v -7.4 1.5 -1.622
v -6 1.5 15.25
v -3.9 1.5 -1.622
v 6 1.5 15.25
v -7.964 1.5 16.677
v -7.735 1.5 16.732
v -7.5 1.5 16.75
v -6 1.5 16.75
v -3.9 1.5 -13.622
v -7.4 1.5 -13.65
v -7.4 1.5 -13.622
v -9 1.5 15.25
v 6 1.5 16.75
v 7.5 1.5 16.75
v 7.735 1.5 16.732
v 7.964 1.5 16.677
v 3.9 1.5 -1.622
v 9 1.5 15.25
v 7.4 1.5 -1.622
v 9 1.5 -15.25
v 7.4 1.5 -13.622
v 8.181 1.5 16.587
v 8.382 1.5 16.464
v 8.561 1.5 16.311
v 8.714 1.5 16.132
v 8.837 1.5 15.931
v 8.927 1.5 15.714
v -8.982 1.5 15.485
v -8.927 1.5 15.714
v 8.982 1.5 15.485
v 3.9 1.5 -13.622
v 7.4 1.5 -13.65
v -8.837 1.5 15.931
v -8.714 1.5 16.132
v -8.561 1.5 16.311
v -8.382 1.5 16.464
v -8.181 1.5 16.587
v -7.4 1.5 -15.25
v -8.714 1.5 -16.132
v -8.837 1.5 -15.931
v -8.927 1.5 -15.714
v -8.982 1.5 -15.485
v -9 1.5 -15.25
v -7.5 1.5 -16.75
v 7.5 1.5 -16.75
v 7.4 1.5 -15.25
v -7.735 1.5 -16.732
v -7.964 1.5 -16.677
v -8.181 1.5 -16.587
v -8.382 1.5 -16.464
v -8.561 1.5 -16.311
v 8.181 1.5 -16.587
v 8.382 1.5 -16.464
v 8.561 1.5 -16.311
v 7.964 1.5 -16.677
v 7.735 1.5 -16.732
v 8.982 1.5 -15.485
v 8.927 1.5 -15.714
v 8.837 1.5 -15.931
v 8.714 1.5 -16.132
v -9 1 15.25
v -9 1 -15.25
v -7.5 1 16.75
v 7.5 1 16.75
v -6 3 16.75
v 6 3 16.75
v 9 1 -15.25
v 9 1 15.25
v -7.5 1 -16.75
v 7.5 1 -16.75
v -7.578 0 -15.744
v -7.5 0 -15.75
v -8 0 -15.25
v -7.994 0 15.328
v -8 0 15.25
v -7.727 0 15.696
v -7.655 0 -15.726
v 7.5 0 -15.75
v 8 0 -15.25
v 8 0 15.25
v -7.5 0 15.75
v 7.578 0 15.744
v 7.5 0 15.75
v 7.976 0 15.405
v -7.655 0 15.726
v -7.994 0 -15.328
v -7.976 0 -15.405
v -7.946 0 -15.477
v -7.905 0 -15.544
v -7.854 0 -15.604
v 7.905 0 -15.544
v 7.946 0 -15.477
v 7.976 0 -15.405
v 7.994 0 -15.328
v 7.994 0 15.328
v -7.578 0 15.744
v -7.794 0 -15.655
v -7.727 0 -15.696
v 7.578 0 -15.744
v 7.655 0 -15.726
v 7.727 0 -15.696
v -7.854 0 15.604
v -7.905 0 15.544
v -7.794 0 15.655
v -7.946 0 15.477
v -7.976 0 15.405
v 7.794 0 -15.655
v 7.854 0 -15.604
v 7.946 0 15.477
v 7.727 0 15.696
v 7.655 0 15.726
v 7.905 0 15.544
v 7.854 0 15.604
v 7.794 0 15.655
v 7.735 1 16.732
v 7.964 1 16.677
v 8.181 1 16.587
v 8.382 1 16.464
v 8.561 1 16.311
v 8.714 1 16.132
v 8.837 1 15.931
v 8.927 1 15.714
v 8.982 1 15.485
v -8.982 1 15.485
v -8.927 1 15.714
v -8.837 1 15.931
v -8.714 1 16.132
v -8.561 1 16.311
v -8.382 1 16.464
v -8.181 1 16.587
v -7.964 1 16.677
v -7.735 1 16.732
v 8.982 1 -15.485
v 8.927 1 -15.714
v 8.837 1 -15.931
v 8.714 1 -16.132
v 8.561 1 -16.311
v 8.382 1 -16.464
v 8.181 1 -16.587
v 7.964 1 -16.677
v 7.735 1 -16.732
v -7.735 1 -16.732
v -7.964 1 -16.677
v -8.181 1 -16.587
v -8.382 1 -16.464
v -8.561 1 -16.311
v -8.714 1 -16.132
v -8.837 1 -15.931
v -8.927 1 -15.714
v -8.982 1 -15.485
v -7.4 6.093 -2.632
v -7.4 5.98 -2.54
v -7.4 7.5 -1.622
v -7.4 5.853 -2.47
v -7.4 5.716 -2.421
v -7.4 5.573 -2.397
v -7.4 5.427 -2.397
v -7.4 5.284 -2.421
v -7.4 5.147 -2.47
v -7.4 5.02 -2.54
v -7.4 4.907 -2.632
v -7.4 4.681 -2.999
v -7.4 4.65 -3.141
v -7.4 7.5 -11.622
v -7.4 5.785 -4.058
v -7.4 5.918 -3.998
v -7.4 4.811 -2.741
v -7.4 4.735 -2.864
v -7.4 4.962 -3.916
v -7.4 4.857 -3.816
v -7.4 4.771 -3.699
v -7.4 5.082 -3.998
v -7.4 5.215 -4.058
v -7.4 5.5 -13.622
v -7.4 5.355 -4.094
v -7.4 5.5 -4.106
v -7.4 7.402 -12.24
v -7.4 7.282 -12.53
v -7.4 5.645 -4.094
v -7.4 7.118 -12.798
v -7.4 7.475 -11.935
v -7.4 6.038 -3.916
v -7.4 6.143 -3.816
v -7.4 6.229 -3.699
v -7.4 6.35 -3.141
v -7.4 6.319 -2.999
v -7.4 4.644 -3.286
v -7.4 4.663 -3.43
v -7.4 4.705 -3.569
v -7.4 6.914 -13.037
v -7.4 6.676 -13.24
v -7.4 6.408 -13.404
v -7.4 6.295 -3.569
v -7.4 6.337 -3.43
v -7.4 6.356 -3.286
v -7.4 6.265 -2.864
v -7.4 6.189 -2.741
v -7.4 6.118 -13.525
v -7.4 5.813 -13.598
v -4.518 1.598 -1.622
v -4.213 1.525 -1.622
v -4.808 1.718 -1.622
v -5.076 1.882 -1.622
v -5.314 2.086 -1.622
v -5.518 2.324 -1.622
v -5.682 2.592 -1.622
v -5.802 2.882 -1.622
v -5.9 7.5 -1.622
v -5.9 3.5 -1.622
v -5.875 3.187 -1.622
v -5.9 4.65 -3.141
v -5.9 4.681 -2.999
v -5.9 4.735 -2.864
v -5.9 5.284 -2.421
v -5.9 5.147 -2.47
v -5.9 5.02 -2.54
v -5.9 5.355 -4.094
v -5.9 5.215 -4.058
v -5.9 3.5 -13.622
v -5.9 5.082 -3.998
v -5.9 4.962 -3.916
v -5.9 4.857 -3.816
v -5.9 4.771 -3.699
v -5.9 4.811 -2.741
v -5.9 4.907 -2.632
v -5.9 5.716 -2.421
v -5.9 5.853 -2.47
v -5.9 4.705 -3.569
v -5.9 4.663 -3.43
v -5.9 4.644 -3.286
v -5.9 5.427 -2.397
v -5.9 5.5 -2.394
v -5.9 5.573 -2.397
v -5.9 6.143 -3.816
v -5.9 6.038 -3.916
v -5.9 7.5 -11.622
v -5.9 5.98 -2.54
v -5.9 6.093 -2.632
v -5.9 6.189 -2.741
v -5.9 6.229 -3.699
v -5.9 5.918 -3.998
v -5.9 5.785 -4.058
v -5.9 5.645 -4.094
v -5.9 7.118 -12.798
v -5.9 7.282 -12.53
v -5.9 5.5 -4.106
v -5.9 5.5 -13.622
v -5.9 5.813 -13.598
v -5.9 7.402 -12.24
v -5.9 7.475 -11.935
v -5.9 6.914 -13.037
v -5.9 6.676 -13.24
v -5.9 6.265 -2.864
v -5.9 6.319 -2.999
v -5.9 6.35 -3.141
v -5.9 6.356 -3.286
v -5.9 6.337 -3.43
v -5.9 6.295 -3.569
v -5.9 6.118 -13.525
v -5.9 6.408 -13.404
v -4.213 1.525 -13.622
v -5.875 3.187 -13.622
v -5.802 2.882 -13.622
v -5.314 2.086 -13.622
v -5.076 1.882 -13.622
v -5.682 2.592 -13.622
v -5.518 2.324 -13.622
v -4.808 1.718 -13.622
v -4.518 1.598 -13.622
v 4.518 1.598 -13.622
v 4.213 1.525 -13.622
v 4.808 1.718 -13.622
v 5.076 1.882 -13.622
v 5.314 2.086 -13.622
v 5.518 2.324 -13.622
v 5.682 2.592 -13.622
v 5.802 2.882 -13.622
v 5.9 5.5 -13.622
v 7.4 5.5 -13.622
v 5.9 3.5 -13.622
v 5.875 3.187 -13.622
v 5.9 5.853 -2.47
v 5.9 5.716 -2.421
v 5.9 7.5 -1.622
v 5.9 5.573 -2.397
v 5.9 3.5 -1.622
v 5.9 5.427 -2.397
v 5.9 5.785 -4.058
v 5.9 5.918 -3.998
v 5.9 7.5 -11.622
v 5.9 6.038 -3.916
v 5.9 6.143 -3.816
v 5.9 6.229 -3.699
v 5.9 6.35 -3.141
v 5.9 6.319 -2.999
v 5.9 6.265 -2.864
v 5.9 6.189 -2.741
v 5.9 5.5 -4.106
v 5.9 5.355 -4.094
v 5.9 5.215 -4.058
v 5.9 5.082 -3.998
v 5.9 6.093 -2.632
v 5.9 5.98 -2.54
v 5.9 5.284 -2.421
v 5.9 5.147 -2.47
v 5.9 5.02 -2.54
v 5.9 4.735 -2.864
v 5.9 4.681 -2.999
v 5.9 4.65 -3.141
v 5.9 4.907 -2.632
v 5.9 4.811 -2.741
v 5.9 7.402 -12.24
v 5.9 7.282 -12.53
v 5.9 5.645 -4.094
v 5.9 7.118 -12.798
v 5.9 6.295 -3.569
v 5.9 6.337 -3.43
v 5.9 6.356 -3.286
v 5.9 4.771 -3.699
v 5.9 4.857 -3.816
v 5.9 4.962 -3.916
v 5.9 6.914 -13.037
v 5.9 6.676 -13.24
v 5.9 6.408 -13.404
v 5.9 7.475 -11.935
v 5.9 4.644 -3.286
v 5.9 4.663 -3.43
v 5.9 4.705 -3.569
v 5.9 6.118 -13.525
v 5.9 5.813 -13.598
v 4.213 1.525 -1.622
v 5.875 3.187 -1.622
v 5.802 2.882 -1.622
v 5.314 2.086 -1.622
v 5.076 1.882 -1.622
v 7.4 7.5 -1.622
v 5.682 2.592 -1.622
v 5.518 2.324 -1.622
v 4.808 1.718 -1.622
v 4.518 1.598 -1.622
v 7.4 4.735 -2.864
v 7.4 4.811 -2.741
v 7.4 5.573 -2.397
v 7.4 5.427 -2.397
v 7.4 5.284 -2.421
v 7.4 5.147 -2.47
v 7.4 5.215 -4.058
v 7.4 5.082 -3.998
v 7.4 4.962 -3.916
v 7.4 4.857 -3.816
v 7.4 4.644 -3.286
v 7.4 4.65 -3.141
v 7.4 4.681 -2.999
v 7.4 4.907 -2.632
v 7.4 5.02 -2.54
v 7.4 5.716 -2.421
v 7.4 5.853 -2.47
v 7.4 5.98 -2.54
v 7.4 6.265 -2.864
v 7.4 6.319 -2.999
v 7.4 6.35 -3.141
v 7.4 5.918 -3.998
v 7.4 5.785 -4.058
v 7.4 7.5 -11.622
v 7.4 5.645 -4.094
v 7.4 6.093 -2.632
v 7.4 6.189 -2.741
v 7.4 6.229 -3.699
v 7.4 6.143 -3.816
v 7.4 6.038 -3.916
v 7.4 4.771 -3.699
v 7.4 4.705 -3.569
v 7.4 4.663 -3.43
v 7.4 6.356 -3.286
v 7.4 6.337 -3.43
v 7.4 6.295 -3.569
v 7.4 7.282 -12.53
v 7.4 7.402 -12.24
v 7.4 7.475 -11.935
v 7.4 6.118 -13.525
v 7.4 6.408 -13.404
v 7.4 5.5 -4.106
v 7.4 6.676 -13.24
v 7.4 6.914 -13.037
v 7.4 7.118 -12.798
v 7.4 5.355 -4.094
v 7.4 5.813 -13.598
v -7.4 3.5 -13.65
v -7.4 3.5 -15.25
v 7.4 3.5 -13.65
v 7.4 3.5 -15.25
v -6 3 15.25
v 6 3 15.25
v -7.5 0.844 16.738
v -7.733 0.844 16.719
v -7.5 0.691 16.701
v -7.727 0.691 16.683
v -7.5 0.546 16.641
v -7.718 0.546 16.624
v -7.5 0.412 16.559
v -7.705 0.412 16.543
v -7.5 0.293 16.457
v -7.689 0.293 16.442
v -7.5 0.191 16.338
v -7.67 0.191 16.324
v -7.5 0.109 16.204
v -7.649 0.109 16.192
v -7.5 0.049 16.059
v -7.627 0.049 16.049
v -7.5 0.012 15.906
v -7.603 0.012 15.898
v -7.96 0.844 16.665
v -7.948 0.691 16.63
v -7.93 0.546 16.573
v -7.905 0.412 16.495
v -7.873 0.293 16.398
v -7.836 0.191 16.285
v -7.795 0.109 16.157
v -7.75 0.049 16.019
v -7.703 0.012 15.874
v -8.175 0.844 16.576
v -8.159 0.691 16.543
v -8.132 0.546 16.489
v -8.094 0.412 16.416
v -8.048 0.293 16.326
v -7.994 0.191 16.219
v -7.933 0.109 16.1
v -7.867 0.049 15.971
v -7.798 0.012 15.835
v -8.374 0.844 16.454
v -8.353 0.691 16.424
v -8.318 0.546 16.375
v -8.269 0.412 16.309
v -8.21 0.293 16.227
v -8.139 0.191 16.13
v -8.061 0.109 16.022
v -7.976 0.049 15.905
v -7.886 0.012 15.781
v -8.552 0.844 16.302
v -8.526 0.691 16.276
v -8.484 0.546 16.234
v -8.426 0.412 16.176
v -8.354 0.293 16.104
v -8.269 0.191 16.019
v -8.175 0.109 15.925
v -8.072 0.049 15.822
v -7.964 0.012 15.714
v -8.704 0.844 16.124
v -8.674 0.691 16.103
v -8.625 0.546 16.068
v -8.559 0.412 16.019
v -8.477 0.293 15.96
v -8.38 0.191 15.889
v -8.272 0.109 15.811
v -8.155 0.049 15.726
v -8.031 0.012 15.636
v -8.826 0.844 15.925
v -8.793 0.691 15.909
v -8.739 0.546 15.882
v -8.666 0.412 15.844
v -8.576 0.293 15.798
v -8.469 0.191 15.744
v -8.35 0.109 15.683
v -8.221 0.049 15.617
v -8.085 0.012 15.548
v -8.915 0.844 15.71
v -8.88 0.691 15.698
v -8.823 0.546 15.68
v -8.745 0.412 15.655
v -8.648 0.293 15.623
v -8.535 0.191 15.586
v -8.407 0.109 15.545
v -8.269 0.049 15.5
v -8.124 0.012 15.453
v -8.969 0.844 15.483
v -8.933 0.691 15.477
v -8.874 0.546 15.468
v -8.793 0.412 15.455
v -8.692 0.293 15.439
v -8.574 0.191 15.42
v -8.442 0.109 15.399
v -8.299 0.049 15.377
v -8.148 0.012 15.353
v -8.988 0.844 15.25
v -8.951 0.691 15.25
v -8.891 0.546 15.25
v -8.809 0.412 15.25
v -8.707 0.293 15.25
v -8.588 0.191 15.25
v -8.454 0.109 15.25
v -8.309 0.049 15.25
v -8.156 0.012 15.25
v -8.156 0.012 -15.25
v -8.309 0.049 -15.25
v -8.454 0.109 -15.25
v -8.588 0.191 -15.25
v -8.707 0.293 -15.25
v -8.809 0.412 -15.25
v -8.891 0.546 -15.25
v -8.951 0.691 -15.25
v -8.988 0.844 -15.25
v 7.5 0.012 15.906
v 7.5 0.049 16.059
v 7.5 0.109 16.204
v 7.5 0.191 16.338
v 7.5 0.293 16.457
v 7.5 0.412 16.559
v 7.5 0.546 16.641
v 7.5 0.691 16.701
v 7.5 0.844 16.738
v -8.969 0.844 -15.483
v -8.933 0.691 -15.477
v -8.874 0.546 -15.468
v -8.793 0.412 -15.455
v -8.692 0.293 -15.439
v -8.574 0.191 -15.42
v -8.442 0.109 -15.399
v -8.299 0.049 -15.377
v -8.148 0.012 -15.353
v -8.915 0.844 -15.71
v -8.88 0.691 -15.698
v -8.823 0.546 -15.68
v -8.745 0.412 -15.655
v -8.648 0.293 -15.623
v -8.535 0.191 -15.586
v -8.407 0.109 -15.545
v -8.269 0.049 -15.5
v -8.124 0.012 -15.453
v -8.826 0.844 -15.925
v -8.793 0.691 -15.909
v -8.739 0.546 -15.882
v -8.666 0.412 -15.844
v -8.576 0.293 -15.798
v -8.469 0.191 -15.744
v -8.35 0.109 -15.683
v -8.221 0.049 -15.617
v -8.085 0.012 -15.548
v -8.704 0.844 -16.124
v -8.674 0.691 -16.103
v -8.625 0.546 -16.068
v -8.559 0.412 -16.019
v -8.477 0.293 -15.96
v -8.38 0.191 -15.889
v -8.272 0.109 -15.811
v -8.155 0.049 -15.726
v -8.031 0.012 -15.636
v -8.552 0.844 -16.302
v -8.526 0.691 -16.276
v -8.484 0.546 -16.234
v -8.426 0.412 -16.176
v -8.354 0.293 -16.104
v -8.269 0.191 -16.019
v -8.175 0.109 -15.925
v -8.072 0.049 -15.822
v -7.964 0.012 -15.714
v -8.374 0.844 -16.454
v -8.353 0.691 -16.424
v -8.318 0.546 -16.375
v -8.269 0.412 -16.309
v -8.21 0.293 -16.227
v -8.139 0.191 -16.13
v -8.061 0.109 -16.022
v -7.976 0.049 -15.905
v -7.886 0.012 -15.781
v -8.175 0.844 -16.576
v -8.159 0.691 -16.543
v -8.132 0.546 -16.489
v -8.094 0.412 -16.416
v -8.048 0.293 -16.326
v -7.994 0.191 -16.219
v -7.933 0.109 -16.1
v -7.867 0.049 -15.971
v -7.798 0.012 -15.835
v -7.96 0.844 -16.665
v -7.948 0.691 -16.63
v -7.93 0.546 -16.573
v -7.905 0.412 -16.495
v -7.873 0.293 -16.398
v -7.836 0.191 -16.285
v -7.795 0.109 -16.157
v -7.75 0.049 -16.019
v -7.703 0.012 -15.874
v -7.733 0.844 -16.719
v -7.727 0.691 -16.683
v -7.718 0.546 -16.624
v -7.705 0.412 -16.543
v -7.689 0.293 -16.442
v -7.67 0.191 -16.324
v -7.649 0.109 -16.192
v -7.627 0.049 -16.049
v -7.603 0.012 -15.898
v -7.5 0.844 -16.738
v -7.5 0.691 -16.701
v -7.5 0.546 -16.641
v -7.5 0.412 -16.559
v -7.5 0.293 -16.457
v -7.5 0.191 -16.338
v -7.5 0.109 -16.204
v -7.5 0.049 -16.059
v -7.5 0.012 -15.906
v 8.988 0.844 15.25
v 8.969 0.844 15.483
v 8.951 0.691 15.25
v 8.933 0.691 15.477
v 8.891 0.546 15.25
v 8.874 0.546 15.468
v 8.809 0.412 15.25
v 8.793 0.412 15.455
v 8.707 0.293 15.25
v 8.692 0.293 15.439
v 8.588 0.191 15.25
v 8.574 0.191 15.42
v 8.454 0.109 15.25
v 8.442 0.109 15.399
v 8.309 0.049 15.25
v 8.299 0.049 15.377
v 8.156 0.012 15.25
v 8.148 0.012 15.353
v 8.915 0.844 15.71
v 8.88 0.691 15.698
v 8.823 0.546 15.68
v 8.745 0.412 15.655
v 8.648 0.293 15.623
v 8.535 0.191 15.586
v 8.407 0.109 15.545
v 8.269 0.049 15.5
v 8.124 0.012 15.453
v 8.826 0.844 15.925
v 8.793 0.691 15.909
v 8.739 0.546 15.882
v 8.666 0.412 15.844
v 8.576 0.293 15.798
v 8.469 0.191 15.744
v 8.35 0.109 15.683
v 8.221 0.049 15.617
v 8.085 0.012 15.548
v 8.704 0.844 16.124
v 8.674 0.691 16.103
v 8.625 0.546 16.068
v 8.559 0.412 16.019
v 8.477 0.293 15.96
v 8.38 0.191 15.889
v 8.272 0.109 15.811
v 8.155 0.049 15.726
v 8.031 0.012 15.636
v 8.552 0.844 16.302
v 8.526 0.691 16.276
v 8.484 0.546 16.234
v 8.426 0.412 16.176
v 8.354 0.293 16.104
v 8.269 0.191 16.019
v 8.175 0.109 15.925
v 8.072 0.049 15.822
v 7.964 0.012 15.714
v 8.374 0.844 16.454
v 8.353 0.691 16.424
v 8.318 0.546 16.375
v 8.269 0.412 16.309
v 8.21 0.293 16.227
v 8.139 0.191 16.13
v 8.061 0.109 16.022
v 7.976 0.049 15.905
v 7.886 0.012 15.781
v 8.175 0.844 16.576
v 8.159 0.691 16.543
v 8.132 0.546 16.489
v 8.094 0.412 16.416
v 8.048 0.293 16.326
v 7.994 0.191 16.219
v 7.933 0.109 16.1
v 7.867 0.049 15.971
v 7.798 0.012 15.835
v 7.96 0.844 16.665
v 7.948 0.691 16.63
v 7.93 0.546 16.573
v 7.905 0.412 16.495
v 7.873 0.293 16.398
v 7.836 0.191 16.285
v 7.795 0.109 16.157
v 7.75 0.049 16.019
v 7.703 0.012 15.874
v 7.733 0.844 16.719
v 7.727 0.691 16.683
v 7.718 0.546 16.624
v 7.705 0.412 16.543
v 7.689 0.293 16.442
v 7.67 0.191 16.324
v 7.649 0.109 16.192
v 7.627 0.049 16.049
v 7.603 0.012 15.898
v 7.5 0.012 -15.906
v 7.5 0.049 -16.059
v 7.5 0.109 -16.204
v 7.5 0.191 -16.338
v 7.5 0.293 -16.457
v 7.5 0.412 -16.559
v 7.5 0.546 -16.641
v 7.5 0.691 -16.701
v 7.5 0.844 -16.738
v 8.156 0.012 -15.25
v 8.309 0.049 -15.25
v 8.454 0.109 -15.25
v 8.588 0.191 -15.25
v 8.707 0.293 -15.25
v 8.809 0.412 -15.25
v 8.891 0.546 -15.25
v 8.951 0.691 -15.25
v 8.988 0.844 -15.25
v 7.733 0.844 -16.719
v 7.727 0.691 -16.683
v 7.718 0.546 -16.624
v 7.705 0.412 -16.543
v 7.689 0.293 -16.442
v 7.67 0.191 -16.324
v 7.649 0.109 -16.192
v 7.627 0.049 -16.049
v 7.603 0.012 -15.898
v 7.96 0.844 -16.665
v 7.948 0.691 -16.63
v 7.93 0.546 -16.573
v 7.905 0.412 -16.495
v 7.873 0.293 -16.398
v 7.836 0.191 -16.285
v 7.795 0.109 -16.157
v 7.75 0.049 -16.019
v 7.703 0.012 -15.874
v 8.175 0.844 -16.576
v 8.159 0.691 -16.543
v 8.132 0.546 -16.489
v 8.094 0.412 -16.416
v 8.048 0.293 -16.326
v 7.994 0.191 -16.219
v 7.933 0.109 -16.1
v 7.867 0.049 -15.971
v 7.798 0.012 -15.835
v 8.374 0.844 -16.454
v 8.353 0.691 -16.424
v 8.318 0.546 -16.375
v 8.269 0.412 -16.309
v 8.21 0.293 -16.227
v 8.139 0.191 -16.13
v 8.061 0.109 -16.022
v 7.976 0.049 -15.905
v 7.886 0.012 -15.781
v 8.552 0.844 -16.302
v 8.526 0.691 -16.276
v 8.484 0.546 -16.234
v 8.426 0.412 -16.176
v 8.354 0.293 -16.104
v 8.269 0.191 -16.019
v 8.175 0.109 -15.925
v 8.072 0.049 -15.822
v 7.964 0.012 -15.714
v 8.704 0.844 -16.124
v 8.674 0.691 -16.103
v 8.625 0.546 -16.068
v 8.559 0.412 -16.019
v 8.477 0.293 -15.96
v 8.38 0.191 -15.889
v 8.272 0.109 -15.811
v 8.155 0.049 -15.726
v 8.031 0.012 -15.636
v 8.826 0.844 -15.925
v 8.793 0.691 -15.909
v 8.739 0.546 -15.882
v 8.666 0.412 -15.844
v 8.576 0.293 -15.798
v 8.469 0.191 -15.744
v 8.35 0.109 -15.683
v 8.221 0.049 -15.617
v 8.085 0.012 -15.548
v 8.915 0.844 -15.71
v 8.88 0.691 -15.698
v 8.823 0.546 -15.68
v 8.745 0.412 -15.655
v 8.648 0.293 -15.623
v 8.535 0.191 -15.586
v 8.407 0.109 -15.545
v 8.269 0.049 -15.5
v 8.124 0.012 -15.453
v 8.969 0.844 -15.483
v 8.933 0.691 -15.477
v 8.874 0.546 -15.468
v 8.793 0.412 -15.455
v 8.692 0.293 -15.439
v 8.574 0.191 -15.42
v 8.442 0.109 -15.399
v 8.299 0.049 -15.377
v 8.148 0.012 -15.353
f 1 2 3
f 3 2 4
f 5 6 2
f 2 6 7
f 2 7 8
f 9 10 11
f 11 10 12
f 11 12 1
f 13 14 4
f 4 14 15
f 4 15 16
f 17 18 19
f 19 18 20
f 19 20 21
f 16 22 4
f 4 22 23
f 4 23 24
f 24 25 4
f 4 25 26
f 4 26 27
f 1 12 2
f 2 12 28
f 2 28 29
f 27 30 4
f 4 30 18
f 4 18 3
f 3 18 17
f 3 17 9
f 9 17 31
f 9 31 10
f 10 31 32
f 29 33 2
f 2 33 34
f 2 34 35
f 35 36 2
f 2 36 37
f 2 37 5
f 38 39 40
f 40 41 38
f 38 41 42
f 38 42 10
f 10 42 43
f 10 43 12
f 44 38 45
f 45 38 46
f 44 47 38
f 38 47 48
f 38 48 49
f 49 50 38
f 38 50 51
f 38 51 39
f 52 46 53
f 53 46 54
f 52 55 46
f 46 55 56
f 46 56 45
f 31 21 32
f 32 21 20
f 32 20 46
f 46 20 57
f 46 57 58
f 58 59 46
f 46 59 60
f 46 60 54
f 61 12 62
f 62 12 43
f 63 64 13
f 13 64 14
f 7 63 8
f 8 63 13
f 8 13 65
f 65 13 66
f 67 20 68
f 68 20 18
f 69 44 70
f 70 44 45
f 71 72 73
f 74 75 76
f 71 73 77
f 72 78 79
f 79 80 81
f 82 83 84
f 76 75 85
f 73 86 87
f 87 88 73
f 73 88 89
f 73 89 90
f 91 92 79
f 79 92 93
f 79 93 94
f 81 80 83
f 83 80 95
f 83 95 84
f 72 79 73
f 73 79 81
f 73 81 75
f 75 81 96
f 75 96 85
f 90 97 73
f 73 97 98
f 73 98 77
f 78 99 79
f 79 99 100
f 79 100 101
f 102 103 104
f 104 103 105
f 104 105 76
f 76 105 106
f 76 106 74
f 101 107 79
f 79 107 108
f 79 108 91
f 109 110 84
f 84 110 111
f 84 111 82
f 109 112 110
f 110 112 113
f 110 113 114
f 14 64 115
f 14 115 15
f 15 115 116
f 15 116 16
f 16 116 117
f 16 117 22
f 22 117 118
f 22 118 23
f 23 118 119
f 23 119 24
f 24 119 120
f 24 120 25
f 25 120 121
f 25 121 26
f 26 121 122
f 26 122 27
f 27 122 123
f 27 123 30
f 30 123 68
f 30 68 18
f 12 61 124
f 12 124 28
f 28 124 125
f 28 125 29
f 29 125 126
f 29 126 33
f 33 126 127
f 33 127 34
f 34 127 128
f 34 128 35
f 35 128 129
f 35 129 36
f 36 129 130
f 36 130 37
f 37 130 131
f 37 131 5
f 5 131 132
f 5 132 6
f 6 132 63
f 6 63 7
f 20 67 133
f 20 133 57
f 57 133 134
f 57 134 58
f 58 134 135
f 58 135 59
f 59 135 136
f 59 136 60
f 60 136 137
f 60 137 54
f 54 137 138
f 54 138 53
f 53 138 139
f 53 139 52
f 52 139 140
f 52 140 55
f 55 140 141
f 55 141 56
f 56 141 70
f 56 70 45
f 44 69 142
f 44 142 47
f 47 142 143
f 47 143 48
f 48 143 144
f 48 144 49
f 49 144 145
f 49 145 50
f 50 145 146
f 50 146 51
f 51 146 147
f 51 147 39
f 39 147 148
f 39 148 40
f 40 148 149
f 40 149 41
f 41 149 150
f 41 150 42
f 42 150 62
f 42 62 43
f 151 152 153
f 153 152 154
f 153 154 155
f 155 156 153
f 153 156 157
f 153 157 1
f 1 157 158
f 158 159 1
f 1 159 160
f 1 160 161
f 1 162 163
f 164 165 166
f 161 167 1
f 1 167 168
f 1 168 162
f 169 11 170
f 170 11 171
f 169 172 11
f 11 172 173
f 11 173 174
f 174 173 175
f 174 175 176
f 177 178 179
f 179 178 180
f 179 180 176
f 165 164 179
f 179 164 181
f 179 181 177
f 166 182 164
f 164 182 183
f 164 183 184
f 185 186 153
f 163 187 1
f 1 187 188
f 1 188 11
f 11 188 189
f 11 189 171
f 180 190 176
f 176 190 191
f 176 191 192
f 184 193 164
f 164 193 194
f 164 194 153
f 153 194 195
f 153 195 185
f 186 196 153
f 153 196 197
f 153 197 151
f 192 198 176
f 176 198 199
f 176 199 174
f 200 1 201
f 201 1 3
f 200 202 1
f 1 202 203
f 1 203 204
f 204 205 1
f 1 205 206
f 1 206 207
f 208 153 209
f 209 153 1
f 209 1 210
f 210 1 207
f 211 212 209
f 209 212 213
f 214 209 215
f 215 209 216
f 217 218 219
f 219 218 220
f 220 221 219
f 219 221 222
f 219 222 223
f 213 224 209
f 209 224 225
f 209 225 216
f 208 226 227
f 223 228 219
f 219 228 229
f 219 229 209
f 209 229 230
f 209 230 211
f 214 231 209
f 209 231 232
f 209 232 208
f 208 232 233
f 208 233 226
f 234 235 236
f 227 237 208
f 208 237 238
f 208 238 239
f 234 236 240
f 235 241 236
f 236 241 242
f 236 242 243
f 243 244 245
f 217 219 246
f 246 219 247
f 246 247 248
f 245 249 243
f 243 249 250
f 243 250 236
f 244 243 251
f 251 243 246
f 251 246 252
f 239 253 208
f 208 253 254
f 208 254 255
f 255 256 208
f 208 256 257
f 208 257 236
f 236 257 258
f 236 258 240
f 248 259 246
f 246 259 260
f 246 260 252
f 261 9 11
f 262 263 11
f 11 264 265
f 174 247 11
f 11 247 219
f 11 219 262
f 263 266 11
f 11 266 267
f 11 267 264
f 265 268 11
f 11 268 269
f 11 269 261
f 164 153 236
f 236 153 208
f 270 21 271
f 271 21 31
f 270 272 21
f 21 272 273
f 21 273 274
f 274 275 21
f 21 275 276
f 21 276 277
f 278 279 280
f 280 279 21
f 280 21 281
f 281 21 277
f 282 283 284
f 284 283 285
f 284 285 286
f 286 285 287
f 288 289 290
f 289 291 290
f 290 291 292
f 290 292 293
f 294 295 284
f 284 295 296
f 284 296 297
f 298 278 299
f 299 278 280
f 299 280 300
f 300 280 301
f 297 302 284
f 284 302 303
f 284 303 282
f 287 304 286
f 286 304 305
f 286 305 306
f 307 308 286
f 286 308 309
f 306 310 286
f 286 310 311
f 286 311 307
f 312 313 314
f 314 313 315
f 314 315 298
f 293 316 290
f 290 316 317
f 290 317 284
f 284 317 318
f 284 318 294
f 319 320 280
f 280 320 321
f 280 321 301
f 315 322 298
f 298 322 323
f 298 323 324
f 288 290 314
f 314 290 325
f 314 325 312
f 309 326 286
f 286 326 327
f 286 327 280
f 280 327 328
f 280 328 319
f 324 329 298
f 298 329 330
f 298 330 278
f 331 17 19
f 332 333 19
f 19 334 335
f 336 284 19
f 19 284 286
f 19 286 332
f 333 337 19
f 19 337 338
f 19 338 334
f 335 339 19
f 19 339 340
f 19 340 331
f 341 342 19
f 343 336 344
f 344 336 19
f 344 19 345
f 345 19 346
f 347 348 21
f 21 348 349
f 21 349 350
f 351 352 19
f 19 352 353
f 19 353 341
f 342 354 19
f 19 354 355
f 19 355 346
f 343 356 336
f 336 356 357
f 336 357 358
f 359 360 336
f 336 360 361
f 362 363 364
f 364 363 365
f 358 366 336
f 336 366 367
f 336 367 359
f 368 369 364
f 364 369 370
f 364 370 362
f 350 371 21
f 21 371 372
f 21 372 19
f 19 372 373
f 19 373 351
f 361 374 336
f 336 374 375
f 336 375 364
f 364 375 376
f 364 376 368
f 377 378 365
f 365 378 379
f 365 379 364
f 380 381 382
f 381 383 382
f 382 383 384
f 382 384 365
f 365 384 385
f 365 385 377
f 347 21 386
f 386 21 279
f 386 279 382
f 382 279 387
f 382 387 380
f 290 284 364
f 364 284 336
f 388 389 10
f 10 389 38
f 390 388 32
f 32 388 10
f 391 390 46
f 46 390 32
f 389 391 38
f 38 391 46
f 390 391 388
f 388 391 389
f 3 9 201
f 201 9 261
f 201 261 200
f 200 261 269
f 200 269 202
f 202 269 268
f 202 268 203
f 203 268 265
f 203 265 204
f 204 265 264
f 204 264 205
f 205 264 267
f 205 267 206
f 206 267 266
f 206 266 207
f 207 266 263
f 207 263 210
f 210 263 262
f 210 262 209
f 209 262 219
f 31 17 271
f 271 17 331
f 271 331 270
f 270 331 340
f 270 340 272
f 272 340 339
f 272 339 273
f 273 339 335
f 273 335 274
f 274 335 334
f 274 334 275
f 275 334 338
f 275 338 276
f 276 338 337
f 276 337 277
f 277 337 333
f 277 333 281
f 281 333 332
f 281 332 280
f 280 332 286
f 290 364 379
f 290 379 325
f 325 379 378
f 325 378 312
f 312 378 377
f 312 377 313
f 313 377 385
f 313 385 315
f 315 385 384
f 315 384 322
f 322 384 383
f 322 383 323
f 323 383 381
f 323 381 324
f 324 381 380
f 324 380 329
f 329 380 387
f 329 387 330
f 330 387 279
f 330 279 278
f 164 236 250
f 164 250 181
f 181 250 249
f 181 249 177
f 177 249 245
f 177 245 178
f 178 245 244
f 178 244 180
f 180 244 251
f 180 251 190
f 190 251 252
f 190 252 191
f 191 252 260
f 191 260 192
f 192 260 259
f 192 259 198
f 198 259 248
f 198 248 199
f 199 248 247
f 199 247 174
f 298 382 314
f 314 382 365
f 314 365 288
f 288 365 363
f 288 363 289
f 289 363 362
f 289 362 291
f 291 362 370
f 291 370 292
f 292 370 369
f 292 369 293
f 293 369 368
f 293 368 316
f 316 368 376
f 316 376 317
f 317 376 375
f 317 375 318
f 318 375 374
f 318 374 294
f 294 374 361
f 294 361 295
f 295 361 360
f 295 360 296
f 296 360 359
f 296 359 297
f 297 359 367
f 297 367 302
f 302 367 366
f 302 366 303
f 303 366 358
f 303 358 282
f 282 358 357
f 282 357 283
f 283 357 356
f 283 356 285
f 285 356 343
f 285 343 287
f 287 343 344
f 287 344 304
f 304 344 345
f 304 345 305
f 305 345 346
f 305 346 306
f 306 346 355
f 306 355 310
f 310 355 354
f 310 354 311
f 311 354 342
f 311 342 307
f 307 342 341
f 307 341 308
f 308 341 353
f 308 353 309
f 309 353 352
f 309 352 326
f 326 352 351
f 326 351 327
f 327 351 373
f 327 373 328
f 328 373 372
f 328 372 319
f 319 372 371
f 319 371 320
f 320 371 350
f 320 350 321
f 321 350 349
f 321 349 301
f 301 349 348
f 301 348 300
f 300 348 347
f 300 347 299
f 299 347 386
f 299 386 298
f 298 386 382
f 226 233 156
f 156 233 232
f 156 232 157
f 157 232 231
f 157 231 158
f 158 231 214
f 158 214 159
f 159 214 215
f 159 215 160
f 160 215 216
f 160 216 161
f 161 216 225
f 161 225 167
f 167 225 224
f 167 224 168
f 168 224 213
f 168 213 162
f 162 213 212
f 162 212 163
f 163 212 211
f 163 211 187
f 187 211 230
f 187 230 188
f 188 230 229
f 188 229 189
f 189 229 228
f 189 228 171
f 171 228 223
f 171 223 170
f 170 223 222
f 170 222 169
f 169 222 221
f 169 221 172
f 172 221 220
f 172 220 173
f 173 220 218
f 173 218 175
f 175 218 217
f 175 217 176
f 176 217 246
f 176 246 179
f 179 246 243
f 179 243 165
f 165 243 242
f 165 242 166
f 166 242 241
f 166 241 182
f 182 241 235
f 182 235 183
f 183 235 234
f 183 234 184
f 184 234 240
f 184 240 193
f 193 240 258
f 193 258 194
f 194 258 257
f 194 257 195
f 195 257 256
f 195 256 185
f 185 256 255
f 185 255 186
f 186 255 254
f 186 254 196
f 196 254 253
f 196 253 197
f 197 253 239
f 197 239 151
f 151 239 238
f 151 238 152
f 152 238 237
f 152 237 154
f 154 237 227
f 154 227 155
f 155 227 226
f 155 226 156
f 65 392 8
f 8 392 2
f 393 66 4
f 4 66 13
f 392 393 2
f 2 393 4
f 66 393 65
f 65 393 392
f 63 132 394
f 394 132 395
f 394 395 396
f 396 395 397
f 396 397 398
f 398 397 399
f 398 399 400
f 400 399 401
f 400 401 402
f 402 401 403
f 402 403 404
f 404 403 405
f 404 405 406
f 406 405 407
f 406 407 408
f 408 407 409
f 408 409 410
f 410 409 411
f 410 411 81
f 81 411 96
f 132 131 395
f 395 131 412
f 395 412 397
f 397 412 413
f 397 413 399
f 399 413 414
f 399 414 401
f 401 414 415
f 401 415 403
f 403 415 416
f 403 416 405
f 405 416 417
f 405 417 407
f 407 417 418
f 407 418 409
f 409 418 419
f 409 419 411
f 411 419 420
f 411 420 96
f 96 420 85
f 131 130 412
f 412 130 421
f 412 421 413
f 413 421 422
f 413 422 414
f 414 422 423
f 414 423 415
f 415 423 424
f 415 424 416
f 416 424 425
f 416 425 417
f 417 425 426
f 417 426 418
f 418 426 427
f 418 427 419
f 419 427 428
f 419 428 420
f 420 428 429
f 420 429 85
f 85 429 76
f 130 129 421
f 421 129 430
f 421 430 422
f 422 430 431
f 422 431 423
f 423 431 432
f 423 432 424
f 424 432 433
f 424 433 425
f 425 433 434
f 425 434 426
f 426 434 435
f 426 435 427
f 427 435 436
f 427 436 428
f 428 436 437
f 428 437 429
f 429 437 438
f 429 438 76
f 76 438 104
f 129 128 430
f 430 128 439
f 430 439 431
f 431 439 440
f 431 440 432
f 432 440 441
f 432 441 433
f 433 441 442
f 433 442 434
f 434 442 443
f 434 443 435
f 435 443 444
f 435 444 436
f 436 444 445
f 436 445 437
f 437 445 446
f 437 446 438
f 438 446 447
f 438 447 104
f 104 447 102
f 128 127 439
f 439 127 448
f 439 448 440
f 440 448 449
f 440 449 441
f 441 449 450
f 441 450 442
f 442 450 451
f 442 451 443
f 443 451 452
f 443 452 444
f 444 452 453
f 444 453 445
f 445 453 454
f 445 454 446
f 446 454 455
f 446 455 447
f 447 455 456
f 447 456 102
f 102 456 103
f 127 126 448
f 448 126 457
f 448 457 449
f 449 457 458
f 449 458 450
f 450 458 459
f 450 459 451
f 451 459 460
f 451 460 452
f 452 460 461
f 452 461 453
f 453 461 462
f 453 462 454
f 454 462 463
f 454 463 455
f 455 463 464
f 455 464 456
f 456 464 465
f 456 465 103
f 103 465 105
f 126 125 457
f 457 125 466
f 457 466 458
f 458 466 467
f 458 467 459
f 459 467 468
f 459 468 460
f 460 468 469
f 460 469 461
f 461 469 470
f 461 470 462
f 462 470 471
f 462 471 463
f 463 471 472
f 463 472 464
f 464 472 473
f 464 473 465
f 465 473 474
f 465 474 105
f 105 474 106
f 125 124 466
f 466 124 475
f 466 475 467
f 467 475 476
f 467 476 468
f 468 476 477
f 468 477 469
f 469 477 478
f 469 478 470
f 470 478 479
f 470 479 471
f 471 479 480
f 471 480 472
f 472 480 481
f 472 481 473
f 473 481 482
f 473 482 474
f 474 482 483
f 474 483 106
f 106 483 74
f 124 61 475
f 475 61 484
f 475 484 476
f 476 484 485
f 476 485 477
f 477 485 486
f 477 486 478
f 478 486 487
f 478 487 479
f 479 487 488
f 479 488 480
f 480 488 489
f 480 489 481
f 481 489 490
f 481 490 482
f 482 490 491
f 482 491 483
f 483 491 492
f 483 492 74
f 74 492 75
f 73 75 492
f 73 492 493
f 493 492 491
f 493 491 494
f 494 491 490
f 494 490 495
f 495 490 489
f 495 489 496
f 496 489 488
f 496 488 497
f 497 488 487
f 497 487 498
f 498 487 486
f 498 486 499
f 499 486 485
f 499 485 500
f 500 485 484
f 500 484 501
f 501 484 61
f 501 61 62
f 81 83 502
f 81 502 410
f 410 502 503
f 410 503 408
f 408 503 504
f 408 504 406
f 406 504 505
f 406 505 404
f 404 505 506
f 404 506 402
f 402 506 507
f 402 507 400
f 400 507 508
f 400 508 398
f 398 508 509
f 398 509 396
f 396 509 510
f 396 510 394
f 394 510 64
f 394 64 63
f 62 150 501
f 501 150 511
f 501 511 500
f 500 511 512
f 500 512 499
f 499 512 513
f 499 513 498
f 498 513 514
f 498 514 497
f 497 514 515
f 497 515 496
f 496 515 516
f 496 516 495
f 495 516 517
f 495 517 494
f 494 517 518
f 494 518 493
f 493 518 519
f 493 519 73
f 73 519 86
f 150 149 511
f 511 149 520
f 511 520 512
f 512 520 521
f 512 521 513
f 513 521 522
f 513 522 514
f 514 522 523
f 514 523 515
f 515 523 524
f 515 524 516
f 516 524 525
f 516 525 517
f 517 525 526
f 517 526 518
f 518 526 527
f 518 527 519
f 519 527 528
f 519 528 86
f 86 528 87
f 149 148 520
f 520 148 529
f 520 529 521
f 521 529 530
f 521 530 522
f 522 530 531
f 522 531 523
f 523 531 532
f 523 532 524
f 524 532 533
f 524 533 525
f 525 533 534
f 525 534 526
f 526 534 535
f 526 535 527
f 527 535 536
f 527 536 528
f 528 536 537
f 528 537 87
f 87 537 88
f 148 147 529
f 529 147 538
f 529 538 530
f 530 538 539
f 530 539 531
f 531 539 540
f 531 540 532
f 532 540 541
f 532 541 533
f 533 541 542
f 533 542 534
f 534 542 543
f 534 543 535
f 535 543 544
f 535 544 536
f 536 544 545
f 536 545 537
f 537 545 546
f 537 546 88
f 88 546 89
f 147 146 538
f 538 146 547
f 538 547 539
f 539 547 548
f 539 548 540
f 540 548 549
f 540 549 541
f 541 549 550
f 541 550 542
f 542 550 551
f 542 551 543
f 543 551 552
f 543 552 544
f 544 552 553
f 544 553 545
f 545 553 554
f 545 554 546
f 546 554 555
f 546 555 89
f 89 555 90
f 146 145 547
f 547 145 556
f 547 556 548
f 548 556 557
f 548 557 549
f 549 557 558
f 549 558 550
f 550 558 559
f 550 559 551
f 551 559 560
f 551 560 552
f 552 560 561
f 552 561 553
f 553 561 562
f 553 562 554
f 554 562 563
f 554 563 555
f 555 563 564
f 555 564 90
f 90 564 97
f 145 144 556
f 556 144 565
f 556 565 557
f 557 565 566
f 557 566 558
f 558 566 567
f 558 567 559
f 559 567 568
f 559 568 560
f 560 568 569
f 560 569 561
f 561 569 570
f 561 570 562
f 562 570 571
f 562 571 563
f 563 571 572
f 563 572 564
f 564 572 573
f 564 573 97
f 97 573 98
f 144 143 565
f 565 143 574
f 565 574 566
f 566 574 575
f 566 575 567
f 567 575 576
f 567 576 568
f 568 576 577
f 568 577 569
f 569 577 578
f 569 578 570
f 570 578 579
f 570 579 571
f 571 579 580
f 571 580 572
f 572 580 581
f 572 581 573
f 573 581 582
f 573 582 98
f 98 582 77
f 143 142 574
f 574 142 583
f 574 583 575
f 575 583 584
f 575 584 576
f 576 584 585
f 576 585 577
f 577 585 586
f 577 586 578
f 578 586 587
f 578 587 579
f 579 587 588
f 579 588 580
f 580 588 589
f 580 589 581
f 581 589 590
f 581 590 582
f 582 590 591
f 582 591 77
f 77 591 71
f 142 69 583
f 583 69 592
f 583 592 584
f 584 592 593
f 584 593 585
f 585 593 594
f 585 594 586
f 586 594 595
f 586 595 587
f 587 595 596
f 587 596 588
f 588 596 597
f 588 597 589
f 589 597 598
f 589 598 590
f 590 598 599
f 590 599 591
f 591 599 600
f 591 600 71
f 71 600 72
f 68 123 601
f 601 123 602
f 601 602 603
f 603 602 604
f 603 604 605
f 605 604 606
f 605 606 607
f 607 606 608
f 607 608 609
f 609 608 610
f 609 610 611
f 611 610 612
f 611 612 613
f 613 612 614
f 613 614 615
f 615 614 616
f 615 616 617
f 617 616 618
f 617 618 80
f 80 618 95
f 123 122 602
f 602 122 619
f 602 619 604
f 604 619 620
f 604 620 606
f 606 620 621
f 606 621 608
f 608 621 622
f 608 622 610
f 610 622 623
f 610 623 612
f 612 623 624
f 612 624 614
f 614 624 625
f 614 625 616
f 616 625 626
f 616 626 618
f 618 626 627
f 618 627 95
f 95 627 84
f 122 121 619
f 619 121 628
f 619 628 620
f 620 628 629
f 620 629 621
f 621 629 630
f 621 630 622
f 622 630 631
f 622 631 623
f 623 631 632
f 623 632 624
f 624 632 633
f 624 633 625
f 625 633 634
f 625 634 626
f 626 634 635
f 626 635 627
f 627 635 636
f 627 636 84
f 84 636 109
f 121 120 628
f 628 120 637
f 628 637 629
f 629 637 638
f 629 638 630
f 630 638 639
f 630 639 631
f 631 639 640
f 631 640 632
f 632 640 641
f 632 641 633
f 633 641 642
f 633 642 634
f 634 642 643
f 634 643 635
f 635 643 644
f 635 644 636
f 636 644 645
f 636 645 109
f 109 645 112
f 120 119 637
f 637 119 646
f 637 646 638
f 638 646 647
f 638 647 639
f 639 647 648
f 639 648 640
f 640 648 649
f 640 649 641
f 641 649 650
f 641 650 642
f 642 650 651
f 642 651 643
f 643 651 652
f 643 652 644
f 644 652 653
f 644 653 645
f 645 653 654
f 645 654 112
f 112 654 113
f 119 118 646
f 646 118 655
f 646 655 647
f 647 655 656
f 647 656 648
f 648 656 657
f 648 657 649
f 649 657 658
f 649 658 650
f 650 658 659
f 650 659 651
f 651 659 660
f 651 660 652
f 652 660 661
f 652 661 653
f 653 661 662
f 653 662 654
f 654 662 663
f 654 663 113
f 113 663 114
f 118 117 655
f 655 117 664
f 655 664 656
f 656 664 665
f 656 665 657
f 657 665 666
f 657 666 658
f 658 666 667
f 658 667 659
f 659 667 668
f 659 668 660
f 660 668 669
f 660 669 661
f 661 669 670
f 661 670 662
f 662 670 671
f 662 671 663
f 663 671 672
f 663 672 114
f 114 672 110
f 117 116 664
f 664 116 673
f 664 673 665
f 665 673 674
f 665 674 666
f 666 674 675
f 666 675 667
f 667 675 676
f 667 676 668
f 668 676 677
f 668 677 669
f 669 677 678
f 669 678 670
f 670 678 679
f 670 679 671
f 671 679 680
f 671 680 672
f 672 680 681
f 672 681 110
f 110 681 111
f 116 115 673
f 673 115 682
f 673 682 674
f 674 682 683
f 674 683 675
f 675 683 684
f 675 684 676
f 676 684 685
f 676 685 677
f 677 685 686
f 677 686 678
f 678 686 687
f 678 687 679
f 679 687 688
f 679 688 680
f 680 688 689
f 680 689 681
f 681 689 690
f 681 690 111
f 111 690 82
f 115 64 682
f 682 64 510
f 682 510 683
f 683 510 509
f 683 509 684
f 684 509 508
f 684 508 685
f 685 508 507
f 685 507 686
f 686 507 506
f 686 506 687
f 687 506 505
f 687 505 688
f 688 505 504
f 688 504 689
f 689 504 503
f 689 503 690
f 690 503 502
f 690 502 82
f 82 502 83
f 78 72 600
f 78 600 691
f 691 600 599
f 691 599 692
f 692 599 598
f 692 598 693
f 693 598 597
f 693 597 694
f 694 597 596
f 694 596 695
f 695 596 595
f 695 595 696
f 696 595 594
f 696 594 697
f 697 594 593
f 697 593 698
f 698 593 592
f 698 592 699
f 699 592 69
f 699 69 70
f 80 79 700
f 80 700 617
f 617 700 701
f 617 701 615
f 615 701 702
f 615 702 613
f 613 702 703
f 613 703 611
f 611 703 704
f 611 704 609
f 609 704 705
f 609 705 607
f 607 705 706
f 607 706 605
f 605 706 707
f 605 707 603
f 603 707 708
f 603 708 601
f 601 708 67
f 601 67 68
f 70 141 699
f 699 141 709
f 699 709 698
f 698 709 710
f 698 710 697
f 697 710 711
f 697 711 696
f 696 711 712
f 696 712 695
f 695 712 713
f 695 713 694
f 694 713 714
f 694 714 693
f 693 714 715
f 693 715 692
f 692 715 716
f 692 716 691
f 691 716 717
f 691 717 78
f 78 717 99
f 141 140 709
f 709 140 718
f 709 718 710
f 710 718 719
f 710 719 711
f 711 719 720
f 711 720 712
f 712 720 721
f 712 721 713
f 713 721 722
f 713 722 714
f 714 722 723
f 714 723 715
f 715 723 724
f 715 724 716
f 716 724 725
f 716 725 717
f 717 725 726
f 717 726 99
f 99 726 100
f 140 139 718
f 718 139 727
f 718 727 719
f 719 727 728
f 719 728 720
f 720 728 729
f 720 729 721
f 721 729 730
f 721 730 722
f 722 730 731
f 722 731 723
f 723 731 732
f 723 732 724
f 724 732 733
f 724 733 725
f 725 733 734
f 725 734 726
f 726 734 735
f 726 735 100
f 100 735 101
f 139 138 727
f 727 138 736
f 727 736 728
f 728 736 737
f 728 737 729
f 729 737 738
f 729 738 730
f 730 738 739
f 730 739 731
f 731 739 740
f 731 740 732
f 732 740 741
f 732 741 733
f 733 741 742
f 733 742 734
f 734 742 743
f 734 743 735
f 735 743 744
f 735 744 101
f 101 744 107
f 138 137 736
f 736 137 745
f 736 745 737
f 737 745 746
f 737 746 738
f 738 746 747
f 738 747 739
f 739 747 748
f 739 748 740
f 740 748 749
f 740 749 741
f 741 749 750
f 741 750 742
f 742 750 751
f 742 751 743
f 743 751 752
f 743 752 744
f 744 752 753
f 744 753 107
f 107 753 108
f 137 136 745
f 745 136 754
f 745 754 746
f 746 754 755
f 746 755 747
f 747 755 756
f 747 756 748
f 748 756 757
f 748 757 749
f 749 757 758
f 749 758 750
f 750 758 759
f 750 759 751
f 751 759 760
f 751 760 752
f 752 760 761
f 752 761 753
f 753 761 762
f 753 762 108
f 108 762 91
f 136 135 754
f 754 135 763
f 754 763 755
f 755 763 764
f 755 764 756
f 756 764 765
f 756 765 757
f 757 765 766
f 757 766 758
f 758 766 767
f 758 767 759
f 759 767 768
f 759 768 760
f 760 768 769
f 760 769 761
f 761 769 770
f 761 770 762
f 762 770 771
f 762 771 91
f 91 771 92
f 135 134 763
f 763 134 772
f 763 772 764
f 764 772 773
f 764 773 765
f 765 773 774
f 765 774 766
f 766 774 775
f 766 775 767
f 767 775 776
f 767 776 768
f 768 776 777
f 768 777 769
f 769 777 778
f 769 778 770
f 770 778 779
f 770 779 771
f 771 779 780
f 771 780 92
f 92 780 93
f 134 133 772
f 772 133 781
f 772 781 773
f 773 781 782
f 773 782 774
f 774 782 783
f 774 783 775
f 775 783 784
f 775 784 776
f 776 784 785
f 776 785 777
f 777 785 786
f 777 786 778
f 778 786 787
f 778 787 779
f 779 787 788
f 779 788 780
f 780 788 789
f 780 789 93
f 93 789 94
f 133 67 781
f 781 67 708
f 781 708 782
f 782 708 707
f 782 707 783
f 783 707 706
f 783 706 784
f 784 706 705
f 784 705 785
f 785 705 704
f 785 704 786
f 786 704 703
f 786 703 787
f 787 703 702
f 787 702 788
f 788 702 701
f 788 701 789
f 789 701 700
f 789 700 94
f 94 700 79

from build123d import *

# Parameters (mm, degrees)
SKETCH_1_W          = 18
SKETCH_1_H          = 33.5
EXTRUDE_1_DEPTH     = 1.5
FILLET_1_R          = 1.5
SKETCH_2_W          = 1.5
SKETCH_2_H          = 12
EXTRUDE_2_DEPTH     = 6
SKETCH_3_W          = 14.8
SKETCH_3_H          = 1.6
EXTRUDE_3_DEPTH     = 2
FILLET_2_R          = 2
SKETCH_4_R          = 0.856485036
CUT_EXTRUDE_1_DEPTH = 18
SKETCH_5_W          = 12
SKETCH_5_H          = 1.5
EXTRUDE_4_DEPTH     = 1.5
FILLET_3_R          = 1


with BuildPart() as part:
    # 草图1 → 凸台-拉伸1 (new body)
    with BuildSketch(Plane(origin=(0, 0, 0), x_dir=(1, 0, 0), z_dir=(0, 1, 0))):
        Rectangle(SKETCH_1_W, SKETCH_1_H)
    extrude(amount=EXTRUDE_1_DEPTH)

    # 圆角1
    fillet_1_edges = [part.edges().sort_by_distance(p)[0] for p in [
        (-9, 0.75, -16.75),
        (9, 0.75, -16.75),
        (9, 0.75, 16.75),
        (-9, 0.75, 16.75),
    ]]
    fillet(fillet_1_edges, radius=FILLET_1_R)

    # 草图2 → 凸台-拉伸2 (add)
    with BuildSketch(Plane(origin=(0, 1.5, 0), x_dir=(1, 0, 0), z_dir=(0, 1, 0))):
        with Locations((-6.65, 7.622409508)):
            Rectangle(SKETCH_2_W, SKETCH_2_H)
        with Locations((6.65, 7.622409508)):
            Rectangle(SKETCH_2_W, SKETCH_2_H)
    extrude(amount=EXTRUDE_2_DEPTH)

    # 草图3 → 凸台-拉伸3 (add)
    with BuildSketch(Plane(origin=(0, 1.5, 0), x_dir=(1, 0, 0), z_dir=(0, 1, 0))):
        with Locations((0, 14.45)):
            Rectangle(SKETCH_3_W, SKETCH_3_H)
    extrude(amount=EXTRUDE_3_DEPTH)

    # 圆角2
    fillet_2_edges = [part.edges().sort_by_distance(p)[0] for p in [
        (-5.9, 1.5, -7.622409508),
        (-6.65, 7.5, -13.622409508),
        (5.9, 1.5, -7.622409508),
        (6.65, 7.5, -13.622409508),
    ]]
    fillet(fillet_2_edges, radius=FILLET_2_R)

    # 草图4 → 切除-拉伸1 (cut)
    with BuildSketch(Plane(origin=(7.4, 0, 0), x_dir=(0, 0, -1), z_dir=(1, 0, 0))):
        with Locations((3.25, 5.5)):
            Circle(SKETCH_4_R)
    extrude(amount=-CUT_EXTRUDE_1_DEPTH, mode=Mode.SUBTRACT)

    # 草图5 → 凸台-拉伸4 (add)
    with BuildSketch(Plane(origin=(0, 1.5, 0), x_dir=(1, 0, 0), z_dir=(0, 1, 0))):
        with Locations((0, -16)):
            Rectangle(SKETCH_5_W, SKETCH_5_H)
    extrude(amount=EXTRUDE_4_DEPTH)

    # 圆角3
    fillet_3_edges = [part.edges().sort_by_distance(p)[0] for p in [
        (9, 0, 0),
        (-9, 0, 0),
        (0, 0, -16.75),
        (0, 0, 16.75),
        (-8.560660172, 0, -16.310660172),
        (8.560660172, 0, -16.310660172),
        (-8.560660172, 0, 16.310660172),
        (8.560660172, 0, 16.310660172),
    ]]
    fillet(fillet_3_edges, radius=FILLET_3_R)


solid = part.part
